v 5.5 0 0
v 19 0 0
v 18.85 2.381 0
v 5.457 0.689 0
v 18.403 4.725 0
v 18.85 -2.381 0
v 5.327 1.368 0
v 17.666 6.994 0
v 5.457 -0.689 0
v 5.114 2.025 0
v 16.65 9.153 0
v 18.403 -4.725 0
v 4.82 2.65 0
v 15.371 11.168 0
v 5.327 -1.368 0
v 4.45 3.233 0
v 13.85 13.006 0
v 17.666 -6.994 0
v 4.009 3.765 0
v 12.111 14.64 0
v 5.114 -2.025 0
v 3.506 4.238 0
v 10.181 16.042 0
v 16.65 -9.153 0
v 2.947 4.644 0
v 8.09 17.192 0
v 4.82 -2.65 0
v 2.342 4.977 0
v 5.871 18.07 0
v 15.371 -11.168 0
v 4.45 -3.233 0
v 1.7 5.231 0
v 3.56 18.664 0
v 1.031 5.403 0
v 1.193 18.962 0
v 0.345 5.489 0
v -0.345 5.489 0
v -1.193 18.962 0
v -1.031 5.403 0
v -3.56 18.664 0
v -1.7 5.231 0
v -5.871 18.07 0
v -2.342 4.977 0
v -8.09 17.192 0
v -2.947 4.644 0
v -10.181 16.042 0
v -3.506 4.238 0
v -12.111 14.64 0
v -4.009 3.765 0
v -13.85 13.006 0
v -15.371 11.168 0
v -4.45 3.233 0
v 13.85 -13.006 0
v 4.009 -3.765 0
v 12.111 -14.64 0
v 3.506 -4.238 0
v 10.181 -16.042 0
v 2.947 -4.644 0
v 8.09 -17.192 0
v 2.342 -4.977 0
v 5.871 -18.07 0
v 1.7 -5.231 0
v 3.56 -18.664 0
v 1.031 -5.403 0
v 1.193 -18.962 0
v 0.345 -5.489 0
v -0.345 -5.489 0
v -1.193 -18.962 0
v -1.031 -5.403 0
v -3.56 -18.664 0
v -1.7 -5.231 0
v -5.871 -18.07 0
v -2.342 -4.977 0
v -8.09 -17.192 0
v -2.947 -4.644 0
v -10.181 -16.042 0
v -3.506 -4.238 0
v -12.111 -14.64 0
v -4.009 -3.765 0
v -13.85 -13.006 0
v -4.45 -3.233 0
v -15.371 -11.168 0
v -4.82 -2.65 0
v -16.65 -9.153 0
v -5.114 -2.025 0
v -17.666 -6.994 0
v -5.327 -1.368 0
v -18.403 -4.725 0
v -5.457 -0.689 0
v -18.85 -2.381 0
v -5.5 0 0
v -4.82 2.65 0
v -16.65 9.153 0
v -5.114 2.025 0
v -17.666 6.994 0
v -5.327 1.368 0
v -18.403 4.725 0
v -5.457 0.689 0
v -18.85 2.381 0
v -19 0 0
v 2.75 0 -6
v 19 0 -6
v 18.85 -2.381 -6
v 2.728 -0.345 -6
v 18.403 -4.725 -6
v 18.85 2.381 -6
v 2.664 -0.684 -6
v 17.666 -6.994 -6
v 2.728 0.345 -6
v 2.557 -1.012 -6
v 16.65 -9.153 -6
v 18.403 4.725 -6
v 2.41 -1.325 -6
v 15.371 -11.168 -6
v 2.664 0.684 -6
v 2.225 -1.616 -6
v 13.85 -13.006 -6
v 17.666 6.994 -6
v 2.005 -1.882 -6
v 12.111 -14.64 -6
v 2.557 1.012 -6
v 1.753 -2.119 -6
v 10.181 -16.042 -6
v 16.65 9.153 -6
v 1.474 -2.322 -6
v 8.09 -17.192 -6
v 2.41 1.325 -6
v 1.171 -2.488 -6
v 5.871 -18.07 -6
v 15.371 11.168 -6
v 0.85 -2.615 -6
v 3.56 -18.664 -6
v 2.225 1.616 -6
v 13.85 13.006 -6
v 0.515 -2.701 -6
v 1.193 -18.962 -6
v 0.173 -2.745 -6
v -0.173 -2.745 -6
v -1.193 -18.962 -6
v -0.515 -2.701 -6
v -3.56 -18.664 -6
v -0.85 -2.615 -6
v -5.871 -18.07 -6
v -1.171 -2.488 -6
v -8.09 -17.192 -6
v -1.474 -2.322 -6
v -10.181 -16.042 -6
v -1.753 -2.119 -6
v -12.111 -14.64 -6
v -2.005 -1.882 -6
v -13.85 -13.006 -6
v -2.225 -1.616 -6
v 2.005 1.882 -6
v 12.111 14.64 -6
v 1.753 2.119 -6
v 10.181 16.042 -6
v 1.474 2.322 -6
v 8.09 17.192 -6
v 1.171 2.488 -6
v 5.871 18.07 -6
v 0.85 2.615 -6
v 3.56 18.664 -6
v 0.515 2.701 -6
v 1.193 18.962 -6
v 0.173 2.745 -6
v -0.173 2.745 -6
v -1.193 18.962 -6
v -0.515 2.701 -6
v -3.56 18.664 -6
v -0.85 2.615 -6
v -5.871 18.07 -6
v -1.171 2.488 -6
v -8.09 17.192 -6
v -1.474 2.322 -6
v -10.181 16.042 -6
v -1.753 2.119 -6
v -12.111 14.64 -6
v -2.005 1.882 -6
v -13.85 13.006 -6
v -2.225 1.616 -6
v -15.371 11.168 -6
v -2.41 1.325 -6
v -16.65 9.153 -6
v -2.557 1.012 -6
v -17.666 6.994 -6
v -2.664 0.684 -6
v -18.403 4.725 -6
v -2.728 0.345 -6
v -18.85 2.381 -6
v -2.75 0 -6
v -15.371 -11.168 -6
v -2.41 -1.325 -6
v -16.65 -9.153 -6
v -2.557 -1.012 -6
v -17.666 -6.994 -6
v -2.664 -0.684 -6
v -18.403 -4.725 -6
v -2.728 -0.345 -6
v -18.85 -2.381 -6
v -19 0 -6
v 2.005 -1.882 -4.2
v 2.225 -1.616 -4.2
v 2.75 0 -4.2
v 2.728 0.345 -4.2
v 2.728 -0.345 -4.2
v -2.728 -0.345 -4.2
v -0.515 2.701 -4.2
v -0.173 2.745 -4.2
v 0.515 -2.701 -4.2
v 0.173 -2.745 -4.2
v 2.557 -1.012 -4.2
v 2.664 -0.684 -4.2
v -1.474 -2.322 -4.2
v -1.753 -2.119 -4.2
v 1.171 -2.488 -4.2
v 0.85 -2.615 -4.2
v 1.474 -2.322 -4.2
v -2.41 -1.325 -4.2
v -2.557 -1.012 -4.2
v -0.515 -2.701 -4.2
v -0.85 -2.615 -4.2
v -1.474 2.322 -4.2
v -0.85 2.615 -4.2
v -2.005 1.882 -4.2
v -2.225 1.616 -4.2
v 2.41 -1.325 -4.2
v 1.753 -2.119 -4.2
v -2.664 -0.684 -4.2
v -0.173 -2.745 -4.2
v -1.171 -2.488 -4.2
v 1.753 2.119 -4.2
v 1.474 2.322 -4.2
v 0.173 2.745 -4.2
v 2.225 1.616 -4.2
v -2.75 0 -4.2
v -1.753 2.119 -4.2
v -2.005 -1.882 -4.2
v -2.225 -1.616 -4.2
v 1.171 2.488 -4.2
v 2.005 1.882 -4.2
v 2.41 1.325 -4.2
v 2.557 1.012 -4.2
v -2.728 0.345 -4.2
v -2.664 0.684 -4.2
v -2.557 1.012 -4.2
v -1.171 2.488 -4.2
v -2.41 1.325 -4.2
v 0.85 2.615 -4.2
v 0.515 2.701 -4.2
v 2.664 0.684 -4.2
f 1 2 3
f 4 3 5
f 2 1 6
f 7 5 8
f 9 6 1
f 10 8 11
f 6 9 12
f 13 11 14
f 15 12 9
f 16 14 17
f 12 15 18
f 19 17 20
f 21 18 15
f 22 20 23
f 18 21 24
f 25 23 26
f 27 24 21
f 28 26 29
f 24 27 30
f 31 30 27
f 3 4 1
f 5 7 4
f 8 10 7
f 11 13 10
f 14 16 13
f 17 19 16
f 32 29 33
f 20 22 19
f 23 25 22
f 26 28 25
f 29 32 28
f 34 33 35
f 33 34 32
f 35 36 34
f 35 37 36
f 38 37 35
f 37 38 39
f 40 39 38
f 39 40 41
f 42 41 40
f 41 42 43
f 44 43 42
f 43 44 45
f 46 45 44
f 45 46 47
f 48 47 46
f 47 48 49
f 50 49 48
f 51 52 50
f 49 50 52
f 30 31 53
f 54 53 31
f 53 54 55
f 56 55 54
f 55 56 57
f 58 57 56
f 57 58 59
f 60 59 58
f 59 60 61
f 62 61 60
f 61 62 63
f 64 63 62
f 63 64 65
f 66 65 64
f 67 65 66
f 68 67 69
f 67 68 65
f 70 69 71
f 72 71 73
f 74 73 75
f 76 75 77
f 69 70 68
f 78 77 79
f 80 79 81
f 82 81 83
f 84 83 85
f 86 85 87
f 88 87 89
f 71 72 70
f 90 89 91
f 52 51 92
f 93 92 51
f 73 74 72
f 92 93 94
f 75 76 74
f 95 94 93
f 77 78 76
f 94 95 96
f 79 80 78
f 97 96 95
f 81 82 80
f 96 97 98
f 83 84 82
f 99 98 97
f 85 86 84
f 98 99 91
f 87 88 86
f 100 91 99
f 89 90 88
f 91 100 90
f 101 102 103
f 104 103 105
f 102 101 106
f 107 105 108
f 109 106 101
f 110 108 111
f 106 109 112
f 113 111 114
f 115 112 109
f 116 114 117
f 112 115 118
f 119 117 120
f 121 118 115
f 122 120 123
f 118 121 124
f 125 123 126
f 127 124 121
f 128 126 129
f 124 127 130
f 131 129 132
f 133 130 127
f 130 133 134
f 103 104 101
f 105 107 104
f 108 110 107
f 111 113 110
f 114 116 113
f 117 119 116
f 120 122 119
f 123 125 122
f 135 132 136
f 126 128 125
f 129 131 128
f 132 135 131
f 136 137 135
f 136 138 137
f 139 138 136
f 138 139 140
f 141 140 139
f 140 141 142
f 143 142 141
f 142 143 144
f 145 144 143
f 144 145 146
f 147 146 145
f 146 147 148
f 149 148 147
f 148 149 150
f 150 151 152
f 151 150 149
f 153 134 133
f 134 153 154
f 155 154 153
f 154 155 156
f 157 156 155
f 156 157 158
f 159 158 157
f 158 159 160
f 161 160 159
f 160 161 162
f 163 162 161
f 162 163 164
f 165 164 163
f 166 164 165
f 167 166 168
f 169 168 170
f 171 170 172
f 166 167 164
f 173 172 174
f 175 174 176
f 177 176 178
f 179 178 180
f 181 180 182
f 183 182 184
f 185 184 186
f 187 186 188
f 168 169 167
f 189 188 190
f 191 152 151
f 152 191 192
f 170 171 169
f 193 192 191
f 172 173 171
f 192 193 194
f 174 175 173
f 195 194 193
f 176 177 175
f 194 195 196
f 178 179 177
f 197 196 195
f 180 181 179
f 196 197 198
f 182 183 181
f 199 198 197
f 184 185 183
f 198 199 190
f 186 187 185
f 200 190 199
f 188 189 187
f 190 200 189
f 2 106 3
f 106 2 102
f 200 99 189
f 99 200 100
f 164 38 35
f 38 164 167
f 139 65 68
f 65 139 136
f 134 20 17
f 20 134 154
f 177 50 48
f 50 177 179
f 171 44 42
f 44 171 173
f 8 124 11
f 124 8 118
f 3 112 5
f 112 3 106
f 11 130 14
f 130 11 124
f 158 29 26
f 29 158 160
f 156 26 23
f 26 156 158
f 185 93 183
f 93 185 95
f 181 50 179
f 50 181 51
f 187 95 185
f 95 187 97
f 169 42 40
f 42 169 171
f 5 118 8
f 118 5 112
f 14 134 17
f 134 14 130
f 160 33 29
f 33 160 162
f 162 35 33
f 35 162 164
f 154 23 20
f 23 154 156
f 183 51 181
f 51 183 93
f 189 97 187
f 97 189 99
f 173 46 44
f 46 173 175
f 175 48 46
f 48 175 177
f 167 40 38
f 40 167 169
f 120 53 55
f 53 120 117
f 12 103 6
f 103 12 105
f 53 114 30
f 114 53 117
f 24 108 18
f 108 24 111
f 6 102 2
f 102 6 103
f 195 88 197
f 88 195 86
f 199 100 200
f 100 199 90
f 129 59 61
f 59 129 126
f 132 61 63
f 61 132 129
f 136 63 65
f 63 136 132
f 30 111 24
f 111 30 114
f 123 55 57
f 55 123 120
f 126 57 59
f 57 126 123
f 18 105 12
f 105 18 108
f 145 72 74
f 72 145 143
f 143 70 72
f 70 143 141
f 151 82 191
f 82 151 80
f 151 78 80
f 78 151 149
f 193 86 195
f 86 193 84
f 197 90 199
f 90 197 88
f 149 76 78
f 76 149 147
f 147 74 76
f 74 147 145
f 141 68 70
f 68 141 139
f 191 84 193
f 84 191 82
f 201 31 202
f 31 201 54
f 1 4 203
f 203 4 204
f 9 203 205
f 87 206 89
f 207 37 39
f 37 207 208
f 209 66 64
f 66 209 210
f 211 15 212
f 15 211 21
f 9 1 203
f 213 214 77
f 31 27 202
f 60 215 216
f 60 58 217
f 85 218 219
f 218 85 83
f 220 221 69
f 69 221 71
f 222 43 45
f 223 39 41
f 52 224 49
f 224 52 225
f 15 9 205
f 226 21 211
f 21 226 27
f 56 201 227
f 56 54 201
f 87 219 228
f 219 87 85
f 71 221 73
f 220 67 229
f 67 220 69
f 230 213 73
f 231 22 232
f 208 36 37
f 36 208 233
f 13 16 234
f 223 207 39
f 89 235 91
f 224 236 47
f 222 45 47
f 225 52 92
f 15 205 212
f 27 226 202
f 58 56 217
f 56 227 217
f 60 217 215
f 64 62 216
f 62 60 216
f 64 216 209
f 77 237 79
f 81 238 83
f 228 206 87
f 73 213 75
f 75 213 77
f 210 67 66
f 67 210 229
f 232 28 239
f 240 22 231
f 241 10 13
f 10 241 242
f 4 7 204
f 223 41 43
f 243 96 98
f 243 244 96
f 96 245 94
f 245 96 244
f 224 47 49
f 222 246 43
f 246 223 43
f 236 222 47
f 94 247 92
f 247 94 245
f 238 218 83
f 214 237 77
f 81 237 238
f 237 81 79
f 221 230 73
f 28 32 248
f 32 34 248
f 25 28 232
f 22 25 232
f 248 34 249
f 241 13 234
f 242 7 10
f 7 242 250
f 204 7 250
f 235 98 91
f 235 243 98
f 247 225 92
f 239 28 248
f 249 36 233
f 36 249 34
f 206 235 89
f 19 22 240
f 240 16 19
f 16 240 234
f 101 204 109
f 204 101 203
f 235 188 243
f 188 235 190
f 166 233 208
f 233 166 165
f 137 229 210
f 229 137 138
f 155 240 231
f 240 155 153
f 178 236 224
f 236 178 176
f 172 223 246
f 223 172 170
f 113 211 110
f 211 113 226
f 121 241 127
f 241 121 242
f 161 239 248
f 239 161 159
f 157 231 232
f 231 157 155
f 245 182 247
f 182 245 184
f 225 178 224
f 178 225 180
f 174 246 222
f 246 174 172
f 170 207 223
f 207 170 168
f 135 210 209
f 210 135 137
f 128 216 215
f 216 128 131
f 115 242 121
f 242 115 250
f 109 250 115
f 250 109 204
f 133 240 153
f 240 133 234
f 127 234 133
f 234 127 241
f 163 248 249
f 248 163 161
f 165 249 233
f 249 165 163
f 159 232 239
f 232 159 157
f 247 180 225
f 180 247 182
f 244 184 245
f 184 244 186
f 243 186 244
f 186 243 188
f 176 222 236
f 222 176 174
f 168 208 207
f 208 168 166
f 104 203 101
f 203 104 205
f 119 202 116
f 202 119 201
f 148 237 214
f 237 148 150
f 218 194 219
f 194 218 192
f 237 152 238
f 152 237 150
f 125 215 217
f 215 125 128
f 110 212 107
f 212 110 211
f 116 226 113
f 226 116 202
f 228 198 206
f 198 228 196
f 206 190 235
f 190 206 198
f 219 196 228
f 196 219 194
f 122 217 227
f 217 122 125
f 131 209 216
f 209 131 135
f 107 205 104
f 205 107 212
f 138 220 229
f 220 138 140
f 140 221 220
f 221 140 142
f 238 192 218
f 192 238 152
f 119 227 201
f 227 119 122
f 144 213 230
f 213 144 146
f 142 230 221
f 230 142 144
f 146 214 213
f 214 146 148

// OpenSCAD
$fn = 50;


difference() {
	union() {
		translate(v = [0, 0, -6.0000000000]) {
			cylinder(h = 6, r = 10.0000000000);
		}
		translate(v = [0, 0, -6.0000000000]) {
			cylinder(h = 6, r = 19.0000000000);
		}
	}
	union() {
		translate(v = [0, 0, 0]) {
			rotate(a = [0, 0, 0]) {
				difference() {
					union() {
						#translate(v = [0, 0, -6.0000000000]) {
							cylinder(h = 6, r = 2.2500000000);
						}
						#translate(v = [0, 0, -4.2000000000]) {
							cylinder(h = 4.2000000000, r = 10.0000000000, r1 = 2.7500000000, r2 = 5.5000000000);
						}
						#translate(v = [0, 0, -6.0000000000]) {
							cylinder(h = 6, r = 2.7500000000);
						}
						#translate(v = [0, 0, -6.0000000000]) {
							cylinder(h = 6, r = 2.2500000000);
						}
					}
					union();
				}
			}
		}
	}
}
